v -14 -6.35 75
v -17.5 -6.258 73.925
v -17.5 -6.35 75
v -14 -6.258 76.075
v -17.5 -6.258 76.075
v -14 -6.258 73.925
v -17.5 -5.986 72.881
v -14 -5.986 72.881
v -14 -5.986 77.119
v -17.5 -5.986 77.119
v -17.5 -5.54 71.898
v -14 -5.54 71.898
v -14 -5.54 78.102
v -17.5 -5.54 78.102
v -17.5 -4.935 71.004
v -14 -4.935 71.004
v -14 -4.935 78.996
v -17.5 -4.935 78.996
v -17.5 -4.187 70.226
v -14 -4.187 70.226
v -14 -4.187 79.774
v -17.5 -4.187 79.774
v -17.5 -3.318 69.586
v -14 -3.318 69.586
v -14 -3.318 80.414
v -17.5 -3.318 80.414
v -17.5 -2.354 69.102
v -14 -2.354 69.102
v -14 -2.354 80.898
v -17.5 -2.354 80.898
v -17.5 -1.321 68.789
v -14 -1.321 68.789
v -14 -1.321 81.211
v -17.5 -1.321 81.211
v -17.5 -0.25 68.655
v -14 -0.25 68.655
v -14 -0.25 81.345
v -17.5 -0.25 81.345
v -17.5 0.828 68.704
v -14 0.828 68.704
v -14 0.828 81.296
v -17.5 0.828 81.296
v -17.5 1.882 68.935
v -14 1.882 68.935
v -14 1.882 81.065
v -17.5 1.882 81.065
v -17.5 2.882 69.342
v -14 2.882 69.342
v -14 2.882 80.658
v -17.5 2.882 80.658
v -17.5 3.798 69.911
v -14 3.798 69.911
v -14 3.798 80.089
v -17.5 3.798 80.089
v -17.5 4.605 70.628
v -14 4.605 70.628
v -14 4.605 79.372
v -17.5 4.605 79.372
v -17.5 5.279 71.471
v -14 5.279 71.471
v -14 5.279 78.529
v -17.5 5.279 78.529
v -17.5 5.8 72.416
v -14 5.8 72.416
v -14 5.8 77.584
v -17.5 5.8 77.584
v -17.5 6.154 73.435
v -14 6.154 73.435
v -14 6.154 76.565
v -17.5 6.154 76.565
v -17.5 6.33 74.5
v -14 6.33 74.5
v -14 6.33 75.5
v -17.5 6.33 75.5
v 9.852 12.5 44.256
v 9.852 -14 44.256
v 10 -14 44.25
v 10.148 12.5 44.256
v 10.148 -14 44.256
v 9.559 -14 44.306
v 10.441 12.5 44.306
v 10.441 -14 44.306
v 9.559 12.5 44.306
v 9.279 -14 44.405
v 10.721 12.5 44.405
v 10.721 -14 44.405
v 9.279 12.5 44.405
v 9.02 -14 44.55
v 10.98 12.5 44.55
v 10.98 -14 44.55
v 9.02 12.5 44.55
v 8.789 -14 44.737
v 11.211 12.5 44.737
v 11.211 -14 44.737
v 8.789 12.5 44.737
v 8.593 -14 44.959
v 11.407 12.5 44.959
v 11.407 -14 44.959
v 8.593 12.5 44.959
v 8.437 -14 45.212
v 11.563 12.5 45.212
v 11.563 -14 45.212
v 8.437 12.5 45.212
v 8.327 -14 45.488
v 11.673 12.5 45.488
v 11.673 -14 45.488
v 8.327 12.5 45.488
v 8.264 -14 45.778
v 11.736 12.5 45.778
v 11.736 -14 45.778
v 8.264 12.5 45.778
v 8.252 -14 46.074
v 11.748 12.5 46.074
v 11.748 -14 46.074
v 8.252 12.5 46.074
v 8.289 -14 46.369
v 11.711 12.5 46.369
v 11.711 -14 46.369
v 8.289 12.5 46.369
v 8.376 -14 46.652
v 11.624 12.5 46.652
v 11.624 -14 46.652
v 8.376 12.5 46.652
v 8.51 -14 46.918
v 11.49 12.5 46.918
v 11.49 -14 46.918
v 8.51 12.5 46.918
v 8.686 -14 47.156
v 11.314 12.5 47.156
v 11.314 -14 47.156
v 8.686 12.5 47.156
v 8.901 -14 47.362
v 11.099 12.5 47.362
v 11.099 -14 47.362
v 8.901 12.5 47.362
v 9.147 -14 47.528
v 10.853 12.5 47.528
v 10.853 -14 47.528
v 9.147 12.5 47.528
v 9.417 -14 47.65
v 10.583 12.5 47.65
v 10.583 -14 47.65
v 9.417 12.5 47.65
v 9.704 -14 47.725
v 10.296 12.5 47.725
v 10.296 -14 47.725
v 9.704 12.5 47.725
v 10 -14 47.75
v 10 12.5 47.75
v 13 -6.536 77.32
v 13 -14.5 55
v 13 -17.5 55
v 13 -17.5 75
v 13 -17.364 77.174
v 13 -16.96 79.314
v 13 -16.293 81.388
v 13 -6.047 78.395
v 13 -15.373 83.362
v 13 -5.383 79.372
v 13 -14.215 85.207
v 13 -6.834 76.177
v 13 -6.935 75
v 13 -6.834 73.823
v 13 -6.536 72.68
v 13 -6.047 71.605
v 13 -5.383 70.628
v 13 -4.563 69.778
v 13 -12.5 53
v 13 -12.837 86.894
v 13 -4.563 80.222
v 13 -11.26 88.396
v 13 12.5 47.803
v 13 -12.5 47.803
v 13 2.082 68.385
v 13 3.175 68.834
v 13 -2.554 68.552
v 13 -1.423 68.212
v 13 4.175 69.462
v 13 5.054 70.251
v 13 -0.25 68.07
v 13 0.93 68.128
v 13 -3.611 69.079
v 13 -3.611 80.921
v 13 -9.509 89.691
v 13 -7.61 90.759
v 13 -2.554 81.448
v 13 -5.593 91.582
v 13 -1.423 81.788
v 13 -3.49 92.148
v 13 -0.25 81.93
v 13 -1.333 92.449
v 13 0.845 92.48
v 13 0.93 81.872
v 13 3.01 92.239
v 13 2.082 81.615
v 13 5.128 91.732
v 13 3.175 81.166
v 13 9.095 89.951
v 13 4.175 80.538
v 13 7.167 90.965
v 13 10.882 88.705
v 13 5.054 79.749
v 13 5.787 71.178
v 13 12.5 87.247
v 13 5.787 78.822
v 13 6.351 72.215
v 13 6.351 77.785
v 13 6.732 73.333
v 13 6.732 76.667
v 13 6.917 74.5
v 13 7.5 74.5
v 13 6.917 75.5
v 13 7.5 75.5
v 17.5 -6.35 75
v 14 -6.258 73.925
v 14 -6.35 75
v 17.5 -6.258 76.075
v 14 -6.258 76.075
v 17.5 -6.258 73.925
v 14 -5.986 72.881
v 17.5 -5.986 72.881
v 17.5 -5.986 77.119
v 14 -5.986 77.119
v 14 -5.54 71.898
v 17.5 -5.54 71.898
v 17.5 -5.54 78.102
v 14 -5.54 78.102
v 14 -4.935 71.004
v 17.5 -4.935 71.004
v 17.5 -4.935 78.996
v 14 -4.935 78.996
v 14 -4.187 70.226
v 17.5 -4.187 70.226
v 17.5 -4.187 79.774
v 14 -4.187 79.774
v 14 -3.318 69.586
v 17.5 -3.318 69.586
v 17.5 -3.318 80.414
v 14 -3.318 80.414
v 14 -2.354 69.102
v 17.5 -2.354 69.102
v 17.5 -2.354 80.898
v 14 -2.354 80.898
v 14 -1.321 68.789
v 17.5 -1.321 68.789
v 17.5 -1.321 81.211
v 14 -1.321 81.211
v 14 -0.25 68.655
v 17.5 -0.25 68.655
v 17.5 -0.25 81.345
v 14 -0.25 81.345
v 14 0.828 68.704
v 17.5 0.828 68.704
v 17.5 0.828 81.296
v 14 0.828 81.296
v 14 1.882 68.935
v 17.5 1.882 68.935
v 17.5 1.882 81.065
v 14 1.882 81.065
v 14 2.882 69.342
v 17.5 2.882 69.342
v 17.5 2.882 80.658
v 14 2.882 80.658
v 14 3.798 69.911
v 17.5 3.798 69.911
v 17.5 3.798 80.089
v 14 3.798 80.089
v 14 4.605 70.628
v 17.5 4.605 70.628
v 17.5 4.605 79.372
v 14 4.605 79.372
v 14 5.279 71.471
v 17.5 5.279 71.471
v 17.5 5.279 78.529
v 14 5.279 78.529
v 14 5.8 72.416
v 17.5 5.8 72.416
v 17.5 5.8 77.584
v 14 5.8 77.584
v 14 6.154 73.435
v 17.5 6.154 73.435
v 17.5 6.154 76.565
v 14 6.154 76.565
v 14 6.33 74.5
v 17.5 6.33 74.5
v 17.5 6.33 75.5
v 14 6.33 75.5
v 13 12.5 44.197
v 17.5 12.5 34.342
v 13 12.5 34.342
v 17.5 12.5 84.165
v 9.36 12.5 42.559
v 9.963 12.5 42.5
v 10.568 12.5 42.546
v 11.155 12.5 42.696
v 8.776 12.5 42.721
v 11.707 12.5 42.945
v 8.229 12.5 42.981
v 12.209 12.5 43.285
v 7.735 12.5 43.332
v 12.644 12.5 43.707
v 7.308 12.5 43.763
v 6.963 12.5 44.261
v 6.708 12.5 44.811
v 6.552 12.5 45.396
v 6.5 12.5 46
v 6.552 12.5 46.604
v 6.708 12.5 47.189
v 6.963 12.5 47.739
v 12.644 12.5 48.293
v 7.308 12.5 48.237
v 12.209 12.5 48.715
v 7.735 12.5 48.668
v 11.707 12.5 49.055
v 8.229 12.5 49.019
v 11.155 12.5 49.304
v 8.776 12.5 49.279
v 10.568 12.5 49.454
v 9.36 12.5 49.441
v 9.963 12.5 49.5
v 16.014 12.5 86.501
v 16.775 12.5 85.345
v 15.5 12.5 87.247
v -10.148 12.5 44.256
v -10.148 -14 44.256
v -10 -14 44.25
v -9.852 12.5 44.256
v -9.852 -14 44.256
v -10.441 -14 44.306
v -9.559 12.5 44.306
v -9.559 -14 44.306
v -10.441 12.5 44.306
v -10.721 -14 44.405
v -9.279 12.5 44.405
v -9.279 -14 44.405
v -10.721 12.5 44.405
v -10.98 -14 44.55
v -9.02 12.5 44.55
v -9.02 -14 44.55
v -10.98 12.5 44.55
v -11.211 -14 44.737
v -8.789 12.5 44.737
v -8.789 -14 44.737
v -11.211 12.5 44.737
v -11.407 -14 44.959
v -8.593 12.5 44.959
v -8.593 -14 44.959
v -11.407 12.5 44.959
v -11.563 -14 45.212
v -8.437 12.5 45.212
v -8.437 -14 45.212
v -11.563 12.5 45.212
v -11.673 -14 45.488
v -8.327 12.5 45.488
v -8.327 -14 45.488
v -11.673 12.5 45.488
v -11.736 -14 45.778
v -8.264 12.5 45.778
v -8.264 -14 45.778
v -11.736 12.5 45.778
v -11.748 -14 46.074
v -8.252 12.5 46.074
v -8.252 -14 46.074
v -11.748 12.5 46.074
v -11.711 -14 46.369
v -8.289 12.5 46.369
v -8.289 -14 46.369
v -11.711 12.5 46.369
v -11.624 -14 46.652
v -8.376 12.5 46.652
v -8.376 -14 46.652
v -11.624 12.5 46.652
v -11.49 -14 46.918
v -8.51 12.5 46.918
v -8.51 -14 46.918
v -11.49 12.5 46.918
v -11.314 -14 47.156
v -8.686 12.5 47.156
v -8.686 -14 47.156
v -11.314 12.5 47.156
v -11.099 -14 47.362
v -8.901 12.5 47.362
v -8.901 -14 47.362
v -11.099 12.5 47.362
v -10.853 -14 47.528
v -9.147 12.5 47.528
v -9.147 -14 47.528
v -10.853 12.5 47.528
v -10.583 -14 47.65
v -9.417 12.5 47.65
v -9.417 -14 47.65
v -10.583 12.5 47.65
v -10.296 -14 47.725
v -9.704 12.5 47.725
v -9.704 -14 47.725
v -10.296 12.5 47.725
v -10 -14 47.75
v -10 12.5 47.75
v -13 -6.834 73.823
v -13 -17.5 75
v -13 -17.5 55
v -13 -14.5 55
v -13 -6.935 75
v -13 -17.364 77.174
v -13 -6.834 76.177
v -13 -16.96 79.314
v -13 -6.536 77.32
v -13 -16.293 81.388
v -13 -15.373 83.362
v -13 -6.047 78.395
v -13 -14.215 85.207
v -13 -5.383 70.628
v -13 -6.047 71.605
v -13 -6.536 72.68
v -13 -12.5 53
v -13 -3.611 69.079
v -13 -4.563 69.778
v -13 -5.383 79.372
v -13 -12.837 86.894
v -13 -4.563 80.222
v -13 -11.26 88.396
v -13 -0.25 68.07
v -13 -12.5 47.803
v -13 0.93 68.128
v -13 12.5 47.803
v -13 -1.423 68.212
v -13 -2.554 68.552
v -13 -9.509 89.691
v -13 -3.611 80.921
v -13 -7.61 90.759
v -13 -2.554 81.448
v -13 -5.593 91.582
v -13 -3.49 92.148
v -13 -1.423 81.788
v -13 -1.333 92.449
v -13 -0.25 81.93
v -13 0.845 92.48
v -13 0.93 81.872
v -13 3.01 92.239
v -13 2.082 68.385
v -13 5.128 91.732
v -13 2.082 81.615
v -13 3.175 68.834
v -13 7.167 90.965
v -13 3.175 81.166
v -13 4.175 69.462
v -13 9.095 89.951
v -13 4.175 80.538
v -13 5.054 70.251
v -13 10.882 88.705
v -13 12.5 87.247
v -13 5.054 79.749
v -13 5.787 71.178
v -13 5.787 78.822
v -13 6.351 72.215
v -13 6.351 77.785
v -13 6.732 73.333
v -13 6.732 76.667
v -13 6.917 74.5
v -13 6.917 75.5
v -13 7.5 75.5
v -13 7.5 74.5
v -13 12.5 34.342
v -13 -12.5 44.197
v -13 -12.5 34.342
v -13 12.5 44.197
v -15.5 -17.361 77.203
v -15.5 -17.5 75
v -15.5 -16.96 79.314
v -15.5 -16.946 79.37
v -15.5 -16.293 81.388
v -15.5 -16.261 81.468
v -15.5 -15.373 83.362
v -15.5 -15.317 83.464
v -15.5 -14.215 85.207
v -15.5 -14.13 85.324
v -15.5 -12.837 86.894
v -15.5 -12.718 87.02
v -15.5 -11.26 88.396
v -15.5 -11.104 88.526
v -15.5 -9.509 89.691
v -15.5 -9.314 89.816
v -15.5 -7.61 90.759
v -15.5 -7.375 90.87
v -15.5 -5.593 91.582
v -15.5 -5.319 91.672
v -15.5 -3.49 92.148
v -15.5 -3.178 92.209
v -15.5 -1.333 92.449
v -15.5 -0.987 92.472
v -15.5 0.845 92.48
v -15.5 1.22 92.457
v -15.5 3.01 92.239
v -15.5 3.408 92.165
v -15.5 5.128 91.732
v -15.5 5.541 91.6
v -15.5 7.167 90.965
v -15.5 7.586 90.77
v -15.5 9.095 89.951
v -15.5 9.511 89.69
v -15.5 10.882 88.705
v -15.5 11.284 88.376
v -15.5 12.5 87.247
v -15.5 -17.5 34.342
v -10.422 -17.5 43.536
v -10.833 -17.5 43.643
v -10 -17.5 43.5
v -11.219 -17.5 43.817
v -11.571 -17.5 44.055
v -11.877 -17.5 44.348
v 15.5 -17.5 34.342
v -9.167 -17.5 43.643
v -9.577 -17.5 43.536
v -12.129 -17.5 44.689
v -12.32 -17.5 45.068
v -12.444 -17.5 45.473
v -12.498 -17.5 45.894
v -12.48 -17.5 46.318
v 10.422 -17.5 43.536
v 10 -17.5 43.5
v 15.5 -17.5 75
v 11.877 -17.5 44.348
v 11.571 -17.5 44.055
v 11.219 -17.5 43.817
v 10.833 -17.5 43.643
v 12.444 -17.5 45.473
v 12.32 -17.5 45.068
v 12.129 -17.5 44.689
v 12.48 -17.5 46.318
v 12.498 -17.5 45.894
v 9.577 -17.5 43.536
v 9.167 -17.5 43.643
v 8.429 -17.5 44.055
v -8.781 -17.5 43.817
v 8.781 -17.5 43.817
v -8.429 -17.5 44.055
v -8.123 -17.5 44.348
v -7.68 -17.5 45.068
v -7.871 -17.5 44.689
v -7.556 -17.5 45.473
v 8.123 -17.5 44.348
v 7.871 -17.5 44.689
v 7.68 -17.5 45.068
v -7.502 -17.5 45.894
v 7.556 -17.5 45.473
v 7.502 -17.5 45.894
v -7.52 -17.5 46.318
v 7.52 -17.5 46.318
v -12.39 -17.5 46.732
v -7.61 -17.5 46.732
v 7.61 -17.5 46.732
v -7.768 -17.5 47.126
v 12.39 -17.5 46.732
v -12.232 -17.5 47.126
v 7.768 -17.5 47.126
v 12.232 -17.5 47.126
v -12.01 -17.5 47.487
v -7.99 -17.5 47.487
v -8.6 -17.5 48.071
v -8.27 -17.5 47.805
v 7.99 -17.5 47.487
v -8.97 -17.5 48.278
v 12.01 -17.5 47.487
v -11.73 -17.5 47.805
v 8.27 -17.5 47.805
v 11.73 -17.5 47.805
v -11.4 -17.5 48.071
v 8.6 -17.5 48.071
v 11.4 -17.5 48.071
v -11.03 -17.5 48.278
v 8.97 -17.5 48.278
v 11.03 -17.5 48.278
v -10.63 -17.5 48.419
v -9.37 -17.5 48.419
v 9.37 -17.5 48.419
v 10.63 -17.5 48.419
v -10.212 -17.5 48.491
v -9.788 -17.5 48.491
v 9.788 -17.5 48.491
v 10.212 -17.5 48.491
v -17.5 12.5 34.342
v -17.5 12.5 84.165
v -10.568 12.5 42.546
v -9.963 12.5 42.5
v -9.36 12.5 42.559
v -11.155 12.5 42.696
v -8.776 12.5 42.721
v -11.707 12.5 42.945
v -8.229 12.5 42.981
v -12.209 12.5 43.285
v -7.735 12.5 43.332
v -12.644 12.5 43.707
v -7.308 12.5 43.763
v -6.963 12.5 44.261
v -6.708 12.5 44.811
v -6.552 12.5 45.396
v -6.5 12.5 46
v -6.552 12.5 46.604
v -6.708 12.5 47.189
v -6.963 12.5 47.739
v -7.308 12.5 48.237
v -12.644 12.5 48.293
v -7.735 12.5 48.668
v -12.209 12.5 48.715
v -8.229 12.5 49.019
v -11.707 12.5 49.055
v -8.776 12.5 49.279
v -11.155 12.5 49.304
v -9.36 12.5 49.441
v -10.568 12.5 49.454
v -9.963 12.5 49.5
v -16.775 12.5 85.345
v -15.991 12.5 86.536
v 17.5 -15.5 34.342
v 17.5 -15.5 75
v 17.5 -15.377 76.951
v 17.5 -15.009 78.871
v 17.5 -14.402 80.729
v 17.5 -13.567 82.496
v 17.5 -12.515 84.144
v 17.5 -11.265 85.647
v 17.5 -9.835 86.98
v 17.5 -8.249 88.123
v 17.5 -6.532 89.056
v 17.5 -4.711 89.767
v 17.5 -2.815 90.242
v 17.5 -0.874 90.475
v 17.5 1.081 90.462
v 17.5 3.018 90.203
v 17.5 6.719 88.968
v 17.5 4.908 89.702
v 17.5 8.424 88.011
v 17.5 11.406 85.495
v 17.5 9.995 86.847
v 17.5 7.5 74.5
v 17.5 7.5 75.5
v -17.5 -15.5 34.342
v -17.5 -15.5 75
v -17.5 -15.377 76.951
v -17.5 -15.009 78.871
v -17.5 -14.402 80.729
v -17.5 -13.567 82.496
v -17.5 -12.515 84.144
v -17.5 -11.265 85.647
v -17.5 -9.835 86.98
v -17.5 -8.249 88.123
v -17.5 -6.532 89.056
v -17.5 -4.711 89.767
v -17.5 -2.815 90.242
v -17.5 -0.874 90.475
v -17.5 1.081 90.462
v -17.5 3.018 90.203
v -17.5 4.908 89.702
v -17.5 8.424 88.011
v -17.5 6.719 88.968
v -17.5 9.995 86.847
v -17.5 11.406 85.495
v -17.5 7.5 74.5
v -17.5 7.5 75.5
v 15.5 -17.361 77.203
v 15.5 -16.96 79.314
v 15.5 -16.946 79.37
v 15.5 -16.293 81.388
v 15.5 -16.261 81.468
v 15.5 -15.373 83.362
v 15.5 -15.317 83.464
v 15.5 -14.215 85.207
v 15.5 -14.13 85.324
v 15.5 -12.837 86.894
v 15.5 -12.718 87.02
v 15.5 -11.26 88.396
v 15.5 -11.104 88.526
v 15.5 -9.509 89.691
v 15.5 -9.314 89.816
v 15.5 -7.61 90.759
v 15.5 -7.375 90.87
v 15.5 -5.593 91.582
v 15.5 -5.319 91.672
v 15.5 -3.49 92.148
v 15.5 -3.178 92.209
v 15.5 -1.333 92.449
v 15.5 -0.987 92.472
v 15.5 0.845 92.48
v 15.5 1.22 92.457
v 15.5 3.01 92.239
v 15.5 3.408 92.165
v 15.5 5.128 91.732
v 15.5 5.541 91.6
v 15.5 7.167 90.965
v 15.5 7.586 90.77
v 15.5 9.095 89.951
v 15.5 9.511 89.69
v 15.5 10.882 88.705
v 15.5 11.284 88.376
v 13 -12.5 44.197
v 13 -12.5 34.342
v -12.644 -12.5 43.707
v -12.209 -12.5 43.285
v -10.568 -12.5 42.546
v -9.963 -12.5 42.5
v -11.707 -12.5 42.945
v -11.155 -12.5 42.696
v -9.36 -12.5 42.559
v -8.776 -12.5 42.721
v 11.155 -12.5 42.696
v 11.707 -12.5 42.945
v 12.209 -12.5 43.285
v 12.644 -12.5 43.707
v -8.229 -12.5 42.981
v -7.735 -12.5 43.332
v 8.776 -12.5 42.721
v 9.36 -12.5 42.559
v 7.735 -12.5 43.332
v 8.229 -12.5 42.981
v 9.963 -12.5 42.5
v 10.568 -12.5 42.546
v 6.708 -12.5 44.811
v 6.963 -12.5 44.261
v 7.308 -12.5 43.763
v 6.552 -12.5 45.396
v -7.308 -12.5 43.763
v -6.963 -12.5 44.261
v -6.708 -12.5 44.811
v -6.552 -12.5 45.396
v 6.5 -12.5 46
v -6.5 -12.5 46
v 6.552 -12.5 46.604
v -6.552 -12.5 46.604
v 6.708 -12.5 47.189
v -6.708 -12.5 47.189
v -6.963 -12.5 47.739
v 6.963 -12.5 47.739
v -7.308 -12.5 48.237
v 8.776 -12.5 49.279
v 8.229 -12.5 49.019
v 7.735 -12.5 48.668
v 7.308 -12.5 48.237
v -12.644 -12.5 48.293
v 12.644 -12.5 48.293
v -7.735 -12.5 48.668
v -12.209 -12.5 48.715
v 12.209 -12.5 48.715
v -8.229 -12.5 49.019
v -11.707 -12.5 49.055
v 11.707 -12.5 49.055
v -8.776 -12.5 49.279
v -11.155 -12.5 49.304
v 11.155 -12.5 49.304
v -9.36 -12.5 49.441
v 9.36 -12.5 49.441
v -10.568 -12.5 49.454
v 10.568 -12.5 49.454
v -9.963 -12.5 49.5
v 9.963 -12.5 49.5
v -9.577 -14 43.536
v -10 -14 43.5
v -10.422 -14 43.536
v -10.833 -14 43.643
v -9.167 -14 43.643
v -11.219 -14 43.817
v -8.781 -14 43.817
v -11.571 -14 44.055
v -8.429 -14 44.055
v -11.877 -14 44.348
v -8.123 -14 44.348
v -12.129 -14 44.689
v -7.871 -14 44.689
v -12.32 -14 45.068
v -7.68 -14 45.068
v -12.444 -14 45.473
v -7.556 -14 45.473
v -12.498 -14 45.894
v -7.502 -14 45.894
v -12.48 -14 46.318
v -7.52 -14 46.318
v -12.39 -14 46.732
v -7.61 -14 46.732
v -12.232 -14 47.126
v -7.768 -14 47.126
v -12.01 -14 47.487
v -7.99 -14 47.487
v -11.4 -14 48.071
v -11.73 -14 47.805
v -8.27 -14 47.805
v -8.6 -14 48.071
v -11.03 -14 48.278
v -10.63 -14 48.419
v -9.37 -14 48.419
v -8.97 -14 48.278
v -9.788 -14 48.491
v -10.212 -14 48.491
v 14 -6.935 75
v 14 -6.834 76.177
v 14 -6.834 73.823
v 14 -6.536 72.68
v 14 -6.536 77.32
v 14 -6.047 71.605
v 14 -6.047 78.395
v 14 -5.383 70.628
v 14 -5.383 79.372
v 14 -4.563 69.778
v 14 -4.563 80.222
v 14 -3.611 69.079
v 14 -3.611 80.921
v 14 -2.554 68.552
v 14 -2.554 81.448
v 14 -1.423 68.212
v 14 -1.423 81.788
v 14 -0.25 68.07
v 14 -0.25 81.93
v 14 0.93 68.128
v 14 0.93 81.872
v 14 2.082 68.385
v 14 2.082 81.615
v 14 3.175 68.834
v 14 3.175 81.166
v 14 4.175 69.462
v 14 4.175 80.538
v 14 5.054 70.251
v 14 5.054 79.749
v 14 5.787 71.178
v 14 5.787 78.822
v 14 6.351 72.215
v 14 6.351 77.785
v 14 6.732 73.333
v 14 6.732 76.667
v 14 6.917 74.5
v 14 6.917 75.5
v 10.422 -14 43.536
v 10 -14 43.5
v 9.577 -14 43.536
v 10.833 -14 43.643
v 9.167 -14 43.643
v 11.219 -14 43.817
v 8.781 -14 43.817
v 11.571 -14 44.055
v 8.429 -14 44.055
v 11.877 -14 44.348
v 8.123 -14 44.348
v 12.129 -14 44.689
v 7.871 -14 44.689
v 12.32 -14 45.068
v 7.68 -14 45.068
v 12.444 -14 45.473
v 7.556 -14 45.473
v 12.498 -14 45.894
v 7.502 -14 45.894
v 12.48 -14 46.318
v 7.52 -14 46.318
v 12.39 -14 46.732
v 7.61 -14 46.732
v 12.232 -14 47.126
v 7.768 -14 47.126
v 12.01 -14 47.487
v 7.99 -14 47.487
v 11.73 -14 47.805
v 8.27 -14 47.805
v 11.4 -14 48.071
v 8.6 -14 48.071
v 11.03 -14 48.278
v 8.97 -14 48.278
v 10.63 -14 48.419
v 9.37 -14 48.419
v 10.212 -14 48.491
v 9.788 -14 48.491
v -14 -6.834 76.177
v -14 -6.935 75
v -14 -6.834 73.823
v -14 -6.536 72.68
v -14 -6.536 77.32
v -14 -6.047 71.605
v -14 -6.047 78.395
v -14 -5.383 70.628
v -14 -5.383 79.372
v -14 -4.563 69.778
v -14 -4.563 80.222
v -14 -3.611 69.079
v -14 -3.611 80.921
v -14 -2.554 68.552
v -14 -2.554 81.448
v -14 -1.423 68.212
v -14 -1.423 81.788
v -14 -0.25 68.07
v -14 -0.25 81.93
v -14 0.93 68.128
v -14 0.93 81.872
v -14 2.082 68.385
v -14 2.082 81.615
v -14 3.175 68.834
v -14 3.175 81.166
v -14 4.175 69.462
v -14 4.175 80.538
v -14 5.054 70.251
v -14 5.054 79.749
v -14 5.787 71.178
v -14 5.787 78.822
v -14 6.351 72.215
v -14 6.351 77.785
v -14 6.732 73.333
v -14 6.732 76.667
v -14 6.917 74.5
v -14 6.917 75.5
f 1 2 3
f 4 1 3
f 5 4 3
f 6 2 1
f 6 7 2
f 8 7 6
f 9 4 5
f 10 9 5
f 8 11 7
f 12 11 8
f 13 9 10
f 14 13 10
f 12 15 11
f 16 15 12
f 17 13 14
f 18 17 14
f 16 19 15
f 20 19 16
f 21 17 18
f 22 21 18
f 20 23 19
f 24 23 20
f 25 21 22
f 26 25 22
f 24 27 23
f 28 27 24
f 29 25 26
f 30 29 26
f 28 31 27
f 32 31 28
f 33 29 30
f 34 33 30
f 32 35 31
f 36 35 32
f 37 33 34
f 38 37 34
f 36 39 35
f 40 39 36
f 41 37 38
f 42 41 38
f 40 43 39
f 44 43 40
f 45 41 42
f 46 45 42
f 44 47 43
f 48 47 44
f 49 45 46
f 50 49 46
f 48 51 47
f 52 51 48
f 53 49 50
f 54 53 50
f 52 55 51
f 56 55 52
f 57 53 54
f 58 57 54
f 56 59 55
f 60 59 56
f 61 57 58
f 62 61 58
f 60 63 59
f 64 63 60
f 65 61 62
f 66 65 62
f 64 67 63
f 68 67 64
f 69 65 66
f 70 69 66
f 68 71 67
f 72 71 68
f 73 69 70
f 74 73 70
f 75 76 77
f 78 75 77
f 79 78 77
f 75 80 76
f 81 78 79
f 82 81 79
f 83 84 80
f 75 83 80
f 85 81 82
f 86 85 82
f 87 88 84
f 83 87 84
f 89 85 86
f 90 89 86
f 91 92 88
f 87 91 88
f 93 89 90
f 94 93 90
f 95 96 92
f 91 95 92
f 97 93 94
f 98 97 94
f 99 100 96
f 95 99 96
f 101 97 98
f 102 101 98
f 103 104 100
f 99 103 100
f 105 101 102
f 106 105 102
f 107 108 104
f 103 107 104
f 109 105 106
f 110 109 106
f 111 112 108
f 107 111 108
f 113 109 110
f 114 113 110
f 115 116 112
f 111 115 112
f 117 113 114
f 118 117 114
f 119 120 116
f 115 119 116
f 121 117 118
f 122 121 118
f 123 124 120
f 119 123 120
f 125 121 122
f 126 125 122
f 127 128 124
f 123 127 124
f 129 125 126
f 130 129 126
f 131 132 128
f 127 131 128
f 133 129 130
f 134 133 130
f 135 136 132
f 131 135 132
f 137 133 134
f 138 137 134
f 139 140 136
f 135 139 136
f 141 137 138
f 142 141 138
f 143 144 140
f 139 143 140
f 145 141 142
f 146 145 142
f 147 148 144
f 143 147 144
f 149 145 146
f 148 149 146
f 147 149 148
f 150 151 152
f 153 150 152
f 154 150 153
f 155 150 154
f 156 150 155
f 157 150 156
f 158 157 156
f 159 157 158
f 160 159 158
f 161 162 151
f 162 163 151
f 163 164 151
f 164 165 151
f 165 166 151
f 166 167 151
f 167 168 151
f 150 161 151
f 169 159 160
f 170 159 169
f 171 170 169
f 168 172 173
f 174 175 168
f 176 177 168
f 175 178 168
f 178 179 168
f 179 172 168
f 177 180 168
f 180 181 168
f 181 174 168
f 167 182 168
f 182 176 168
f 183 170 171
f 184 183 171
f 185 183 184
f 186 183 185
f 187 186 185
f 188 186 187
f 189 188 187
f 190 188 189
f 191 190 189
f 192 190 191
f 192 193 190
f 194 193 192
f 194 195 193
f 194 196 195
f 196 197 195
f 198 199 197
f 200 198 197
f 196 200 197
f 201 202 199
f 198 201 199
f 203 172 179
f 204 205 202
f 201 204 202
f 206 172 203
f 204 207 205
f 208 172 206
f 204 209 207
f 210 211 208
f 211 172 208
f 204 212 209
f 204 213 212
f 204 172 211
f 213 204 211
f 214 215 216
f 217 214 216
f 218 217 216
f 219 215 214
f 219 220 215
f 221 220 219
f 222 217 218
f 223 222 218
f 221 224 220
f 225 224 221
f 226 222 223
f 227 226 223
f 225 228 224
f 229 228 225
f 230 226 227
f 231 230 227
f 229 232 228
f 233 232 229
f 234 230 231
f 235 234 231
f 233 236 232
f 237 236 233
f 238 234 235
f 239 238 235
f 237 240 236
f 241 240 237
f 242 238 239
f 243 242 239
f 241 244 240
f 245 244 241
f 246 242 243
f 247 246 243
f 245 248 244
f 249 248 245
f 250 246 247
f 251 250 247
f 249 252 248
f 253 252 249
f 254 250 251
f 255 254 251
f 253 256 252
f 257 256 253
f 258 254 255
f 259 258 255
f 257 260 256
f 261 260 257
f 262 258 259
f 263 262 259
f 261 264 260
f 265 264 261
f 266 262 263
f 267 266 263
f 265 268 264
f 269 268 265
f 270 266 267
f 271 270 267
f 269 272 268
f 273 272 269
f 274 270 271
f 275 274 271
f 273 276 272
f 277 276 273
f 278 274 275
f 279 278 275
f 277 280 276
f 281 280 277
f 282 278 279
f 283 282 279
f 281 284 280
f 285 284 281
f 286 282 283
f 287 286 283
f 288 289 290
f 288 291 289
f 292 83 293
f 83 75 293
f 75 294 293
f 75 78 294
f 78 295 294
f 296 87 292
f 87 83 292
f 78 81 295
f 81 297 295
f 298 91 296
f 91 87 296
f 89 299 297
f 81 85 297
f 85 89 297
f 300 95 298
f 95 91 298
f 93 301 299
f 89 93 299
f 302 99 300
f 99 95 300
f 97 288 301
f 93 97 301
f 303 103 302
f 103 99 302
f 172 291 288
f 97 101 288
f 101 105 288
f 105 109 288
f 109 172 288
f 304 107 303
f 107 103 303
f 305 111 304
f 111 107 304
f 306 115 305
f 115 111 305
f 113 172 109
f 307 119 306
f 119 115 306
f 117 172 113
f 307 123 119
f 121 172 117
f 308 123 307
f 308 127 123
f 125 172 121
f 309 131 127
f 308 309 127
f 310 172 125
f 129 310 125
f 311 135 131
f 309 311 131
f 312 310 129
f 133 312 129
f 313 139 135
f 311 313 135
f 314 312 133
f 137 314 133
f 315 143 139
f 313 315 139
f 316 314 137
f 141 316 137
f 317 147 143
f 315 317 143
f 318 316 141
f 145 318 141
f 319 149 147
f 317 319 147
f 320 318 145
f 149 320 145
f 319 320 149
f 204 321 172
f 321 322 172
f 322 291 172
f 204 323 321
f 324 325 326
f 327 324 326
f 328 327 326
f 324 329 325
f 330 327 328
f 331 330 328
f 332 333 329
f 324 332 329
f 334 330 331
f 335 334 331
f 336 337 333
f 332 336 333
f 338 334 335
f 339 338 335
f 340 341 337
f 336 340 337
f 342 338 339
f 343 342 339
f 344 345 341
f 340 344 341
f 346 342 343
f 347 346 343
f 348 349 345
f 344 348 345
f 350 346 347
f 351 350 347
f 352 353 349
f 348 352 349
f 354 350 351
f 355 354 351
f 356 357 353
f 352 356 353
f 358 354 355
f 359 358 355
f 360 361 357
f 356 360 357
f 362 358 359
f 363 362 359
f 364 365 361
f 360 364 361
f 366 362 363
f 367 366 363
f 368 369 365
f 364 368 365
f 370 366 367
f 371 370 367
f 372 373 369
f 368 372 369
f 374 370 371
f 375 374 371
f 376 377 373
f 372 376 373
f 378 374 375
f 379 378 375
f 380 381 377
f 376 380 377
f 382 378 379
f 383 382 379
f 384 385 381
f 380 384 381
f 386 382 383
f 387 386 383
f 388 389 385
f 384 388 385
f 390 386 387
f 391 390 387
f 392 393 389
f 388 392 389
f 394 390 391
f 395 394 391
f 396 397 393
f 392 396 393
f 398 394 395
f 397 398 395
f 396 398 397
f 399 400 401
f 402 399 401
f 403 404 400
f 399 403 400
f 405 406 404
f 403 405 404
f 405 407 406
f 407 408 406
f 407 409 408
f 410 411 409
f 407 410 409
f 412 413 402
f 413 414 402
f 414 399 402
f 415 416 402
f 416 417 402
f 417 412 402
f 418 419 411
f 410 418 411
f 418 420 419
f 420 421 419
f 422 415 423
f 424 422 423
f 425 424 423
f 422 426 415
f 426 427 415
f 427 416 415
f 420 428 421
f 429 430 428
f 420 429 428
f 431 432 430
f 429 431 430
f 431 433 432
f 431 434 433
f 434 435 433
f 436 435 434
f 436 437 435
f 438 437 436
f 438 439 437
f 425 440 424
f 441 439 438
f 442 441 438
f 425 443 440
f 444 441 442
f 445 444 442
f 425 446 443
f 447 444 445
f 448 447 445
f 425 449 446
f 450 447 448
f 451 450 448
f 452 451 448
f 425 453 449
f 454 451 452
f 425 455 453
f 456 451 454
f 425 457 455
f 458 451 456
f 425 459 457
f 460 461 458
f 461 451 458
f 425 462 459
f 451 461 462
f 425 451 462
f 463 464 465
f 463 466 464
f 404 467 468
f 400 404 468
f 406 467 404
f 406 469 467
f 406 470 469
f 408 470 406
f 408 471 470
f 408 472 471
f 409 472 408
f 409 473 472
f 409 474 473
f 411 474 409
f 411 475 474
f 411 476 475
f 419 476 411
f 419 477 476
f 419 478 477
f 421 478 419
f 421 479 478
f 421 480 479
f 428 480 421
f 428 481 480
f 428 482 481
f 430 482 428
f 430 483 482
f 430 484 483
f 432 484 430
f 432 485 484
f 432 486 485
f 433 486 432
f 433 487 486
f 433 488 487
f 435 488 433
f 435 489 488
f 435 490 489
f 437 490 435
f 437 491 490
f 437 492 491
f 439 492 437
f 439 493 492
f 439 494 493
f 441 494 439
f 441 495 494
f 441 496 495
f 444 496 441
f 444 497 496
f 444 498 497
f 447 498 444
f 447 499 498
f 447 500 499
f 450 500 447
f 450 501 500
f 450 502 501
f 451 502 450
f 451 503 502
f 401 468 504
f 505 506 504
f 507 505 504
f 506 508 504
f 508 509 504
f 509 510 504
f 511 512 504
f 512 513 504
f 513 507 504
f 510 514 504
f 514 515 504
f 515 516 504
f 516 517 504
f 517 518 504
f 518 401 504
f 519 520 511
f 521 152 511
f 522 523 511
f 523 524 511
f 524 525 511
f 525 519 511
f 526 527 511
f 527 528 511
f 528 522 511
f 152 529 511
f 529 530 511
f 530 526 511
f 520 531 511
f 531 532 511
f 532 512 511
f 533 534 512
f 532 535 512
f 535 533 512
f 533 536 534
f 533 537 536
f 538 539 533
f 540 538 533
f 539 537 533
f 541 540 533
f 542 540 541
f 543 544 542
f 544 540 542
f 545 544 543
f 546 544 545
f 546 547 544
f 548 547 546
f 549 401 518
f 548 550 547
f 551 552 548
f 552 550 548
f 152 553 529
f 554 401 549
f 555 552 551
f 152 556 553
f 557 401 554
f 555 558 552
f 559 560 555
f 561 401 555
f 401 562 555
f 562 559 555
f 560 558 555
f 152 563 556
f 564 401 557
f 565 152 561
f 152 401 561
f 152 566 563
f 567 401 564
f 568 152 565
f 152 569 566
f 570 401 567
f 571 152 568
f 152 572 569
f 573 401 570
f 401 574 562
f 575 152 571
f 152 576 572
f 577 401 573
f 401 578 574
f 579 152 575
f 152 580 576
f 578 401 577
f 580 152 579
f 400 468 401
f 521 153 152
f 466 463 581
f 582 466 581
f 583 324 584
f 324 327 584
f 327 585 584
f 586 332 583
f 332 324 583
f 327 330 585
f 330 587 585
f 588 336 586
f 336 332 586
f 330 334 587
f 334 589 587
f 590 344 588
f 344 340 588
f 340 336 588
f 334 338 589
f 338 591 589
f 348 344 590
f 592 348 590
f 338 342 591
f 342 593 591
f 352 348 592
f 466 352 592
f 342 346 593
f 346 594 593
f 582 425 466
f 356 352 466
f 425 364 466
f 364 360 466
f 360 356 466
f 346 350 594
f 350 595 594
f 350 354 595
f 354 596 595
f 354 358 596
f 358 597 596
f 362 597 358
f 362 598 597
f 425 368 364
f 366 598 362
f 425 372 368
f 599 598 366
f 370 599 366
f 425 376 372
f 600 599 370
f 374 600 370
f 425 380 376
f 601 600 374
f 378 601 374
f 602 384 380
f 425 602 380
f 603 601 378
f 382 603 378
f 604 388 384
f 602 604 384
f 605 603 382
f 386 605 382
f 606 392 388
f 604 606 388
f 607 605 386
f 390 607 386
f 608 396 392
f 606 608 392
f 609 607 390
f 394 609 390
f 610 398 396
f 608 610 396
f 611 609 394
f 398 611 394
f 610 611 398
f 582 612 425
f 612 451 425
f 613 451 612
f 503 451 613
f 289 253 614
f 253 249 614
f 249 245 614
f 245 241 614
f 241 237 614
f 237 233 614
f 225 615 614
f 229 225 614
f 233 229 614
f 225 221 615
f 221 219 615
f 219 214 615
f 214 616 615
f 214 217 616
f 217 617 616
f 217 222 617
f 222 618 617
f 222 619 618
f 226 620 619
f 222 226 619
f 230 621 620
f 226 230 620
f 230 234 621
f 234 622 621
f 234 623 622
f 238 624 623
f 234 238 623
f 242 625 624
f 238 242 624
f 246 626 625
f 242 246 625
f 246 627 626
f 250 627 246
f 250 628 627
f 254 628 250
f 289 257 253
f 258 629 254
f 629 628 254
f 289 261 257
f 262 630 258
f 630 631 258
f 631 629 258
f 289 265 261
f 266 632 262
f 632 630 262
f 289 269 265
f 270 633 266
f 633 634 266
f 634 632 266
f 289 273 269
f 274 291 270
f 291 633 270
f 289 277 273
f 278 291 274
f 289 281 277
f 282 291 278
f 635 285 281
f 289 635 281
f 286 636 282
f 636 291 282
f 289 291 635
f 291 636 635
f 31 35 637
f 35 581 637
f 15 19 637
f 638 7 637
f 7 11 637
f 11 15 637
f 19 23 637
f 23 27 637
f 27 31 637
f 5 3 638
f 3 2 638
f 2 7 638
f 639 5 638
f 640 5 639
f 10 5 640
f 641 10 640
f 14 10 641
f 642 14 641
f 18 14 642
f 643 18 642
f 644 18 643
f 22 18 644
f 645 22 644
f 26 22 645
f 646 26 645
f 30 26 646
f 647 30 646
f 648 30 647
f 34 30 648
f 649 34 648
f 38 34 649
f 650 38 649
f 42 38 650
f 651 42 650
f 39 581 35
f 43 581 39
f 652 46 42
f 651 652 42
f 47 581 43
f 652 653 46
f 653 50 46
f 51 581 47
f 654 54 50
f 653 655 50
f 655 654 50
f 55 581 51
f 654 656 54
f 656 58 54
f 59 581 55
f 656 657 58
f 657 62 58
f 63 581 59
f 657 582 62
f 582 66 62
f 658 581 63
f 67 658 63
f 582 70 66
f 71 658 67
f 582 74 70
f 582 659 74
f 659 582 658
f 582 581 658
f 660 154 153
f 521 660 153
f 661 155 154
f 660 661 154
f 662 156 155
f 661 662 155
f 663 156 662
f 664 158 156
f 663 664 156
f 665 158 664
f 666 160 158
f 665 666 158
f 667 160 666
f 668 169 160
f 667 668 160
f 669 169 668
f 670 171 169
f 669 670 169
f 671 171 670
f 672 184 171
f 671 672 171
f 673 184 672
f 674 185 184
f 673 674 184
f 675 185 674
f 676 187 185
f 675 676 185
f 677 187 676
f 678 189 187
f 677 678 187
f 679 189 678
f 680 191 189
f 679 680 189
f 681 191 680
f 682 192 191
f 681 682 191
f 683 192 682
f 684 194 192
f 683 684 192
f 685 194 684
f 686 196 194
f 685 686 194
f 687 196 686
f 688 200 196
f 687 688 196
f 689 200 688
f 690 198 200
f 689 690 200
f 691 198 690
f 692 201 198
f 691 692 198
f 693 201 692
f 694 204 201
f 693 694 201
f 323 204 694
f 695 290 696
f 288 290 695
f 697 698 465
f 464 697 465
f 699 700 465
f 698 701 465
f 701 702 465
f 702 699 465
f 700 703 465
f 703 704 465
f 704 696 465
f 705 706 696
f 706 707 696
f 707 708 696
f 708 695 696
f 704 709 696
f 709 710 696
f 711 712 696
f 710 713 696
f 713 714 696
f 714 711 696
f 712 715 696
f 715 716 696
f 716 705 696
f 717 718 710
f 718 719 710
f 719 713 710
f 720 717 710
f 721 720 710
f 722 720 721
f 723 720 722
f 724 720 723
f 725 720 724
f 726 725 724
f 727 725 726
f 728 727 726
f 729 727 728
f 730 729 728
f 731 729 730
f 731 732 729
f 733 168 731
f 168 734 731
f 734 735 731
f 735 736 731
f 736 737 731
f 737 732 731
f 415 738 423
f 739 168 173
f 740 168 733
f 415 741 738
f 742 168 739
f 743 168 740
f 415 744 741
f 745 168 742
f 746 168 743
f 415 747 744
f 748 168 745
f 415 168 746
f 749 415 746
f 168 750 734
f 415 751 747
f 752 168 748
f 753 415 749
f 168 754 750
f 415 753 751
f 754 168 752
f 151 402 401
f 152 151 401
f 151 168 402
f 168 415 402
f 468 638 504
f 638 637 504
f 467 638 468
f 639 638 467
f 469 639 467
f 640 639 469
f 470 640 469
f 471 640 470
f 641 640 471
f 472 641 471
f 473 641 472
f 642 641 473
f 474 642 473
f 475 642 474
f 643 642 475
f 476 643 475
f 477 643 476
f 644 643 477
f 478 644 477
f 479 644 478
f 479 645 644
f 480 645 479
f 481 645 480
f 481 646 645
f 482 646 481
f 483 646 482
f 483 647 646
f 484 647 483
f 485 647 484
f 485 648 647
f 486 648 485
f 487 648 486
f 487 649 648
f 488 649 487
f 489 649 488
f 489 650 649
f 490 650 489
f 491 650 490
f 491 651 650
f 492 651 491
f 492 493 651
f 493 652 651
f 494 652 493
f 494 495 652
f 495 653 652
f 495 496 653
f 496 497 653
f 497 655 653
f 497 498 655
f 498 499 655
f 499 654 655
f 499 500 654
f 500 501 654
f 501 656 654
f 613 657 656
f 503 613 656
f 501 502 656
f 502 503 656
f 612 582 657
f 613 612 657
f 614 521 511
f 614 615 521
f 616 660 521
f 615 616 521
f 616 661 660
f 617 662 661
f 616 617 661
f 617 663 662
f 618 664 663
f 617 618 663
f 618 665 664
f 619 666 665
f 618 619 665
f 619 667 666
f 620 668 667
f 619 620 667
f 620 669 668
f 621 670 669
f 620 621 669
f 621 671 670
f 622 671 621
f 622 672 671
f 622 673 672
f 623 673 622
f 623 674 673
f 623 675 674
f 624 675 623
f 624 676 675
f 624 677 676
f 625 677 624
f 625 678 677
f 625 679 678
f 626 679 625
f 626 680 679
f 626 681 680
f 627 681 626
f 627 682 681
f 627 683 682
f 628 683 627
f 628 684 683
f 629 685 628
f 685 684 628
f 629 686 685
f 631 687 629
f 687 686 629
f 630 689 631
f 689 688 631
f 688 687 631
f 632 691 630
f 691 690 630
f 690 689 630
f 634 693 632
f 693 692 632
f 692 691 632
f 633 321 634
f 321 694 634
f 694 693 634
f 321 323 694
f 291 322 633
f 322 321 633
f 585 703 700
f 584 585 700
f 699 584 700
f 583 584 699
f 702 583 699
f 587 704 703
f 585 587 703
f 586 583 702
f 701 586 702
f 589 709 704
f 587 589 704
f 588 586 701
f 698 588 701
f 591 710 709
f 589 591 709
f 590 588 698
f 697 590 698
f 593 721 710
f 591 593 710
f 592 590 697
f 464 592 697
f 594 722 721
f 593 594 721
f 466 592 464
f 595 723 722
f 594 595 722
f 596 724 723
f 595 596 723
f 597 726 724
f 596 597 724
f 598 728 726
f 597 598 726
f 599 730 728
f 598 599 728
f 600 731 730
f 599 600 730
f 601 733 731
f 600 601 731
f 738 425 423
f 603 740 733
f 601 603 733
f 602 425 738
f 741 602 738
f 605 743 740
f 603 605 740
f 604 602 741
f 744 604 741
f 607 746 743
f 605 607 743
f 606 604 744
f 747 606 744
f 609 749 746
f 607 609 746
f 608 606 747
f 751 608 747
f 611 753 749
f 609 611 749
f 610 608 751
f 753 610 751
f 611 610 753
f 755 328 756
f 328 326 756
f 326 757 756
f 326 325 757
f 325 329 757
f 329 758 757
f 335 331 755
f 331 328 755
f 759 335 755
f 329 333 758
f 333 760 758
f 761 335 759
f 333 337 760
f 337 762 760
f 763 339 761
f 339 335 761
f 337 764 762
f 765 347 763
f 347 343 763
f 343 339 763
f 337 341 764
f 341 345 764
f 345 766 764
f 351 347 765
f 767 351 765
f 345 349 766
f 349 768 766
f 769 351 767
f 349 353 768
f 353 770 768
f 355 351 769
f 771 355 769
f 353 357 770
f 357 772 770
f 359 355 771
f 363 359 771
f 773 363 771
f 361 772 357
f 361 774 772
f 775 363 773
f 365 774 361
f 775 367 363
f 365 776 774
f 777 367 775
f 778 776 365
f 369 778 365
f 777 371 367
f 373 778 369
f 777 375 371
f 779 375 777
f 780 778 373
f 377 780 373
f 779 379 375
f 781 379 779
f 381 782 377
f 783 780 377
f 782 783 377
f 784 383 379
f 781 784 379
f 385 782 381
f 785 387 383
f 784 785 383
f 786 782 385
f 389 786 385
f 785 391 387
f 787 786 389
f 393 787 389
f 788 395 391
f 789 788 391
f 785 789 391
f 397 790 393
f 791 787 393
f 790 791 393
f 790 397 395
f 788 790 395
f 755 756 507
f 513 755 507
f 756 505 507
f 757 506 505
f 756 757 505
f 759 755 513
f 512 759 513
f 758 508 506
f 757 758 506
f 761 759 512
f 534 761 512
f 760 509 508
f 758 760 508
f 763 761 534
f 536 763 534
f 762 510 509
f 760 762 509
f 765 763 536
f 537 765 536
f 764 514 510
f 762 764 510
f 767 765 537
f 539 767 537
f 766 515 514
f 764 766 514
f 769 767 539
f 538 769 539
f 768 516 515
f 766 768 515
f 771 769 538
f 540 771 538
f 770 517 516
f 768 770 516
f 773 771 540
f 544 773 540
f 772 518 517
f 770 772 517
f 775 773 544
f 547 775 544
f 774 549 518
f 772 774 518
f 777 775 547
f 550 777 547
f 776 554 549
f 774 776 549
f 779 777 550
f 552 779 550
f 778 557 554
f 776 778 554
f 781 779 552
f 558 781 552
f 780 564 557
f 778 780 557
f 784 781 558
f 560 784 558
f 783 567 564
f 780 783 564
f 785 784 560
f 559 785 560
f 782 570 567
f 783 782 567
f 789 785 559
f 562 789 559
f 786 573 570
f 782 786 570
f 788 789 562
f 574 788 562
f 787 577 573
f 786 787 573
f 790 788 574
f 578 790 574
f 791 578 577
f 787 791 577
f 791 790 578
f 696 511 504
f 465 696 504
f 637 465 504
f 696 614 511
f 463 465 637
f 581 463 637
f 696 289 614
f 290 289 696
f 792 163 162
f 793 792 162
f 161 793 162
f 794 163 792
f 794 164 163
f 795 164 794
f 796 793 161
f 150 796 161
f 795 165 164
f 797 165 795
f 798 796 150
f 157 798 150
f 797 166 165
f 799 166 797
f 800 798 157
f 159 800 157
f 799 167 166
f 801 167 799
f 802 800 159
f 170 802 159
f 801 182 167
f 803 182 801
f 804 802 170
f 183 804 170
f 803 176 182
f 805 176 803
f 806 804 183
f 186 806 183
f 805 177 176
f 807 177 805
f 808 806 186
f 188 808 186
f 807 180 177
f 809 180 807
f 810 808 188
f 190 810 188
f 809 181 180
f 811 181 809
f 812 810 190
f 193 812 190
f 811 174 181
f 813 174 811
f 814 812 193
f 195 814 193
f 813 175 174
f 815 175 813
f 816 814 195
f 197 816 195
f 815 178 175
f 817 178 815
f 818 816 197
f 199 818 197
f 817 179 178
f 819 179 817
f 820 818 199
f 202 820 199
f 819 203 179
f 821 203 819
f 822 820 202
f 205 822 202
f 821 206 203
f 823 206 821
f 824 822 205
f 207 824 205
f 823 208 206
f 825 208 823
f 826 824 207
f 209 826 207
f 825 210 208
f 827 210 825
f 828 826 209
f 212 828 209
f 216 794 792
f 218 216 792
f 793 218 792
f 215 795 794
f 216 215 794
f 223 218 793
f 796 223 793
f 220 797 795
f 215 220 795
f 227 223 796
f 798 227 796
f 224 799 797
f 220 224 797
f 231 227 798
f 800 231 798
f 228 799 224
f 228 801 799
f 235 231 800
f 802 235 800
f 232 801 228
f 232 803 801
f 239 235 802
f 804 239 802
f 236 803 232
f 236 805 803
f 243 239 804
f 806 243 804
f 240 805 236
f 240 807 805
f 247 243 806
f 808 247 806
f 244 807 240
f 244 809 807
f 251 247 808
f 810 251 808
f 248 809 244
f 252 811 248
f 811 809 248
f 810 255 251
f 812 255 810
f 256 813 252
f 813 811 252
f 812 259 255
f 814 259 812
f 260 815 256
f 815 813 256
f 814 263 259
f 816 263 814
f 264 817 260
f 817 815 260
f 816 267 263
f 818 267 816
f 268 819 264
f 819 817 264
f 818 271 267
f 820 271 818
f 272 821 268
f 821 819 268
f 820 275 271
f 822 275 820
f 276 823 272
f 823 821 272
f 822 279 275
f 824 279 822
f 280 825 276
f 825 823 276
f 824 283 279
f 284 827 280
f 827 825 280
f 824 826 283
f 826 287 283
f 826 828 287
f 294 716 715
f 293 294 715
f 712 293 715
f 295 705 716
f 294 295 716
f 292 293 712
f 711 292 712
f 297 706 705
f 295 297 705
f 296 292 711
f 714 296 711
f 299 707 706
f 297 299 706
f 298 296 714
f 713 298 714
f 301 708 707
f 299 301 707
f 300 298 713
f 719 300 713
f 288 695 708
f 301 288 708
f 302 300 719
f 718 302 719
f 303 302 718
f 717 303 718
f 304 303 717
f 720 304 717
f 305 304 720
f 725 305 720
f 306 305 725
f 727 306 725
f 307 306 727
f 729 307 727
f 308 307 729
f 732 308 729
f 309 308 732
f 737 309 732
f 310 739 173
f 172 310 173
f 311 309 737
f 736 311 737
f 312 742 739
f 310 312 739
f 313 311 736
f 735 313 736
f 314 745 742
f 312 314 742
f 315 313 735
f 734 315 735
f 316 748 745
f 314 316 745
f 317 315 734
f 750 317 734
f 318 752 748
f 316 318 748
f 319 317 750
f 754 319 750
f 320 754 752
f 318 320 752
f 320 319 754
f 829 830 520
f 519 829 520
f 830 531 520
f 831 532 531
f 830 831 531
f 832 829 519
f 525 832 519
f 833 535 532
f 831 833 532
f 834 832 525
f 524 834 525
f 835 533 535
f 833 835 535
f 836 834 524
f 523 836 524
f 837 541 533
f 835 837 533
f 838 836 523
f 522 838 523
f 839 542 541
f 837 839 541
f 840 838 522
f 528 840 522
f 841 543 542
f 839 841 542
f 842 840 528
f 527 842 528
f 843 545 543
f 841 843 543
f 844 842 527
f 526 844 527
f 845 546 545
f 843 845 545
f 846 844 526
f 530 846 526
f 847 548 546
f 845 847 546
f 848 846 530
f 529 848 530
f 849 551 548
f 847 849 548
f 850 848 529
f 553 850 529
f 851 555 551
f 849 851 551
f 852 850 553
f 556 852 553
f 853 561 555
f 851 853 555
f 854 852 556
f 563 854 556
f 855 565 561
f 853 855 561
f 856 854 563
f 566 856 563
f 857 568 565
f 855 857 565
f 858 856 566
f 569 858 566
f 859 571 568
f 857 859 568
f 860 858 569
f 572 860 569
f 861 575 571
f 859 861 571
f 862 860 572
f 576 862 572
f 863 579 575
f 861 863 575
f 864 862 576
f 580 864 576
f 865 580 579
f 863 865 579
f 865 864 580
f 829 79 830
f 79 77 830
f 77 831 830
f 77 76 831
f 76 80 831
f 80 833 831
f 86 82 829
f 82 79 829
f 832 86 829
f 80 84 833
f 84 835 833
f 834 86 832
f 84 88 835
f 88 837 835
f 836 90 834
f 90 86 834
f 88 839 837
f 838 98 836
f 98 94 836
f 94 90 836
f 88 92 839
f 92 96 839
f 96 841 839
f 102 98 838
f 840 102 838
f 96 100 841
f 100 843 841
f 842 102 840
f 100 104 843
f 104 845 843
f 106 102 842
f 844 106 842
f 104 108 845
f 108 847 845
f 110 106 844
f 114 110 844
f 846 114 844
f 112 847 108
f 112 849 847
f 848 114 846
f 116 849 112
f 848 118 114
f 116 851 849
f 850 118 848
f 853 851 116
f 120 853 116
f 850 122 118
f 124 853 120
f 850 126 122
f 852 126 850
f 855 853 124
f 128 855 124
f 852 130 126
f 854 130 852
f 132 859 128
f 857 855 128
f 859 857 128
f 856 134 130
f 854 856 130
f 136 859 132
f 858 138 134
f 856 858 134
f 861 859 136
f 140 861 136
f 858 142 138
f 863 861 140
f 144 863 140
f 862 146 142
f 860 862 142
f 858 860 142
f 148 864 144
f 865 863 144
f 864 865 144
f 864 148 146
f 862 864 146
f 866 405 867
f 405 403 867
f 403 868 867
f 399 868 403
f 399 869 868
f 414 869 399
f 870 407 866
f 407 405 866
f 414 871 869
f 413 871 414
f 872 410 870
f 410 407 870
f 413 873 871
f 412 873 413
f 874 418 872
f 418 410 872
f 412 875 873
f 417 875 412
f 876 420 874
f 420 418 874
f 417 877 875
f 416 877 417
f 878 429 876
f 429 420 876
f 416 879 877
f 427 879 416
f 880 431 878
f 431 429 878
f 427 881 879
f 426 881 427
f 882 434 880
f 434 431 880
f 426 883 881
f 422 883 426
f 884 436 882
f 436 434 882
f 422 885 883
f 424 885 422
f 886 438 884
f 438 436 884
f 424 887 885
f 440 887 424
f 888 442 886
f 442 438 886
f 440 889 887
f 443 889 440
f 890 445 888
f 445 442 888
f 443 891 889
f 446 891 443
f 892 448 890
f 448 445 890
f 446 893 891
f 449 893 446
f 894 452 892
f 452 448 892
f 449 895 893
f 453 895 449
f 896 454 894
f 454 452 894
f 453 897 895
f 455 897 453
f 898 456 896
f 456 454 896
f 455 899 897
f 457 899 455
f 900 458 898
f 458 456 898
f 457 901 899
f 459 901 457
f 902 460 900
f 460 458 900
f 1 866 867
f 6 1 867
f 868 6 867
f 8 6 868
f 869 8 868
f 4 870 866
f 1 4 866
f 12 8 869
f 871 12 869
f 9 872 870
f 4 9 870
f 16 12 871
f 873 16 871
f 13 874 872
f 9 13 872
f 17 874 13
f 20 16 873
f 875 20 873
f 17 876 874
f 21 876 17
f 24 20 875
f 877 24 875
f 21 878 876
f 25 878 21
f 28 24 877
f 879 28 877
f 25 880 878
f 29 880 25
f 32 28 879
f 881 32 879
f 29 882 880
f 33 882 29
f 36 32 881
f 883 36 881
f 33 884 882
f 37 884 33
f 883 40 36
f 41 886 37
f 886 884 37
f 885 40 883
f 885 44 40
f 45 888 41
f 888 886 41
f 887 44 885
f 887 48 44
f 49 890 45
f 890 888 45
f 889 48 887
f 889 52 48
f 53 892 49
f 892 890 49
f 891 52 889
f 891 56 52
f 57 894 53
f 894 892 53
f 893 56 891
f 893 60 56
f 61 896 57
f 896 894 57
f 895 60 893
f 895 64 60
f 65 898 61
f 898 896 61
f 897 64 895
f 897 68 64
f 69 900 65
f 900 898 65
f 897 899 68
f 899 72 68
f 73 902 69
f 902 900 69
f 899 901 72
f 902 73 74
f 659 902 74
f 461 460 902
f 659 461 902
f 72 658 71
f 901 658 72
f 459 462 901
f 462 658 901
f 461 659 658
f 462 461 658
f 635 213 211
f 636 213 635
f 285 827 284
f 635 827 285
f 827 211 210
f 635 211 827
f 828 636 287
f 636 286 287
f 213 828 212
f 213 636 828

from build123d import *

# Parameters (mm, degrees)
SKETCH1_R               = 6.35
BOSS_EXTRUDE1_DEPTH     = 17.5
CUT_EXTRUDE1_DEPTH      = 13
CHAMFER1_SIZE           = 2
SKETCH4_R               = 3.5
BOSS_EXTRUDE2_DEPTH     = 25
SKETCH6_R               = 1.75
CUT_EXTRUDE2_DEPTH      = 30
SKETCH7_R               = 2.5
CUT_EXTRUDE3_DEPTH      = 3.5
CUT_EXTRUDE4_DEPTH      = 101.436547133
CUT_EXTRUDE4_DEPTH_BACK = 101.436547133
SKETCH8_W               = 138.060190548
SKETCH8_H               = 48.357154547
SKETCH9_R               = 6.935
CUT_EXTRUDE5_DEPTH      = 1
MIRROR1_START           = -12.5
MIRROR1_OUTLINE_R       = 1.75
MIRROR1_DEPTH           = 25
MIRROR1_START_2         = -17.5
MIRROR1_2_OUTLINE_R     = 2.5
MIRROR1_2_DEPTH         = 3.5
MIRROR1_START_3         = -14
MIRROR1_3_OUTLINE_R     = 1.75
MIRROR1_3_DEPTH         = 1.5
MIRROR1_4_OUTLINE_R     = 6.935
MIRROR1_4_OUTLINE_R_2   = 6.35
MIRROR1_4_DEPTH         = 1
CUT_EXTRUDE6_DEPTH      = 101.436547133
CUT_EXTRUDE6_DEPTH_BACK = 101.436547133
SKETCH10_W              = 1
SKETCH10_H              = 7.5


# Read off the part's stored shape, not the designer's step: Mirror1
with BuildPart() as part:
    # Sketch1 → Boss-Extrude1 (new, symmetric)
    with BuildSketch(Plane(origin=(0, 0, 0), x_dir=(0, 0, -1), z_dir=(1, 0, 0))):
        with BuildLine():
            Line((-75, -17.5), (75, -17.5))
            ThreePointArc((75, -17.5), (91.201851746, -6.614378278), (87.247448714, 12.5))
            Line((87.247448714, 12.5), (-87.247448714, 12.5))
            ThreePointArc((-87.247448714, 12.5), (-91.201851746, -6.614378278), (-75, -17.5))
        make_face()
        with Locations((-75, 0)):
            Circle(SKETCH1_R, mode=Mode.SUBTRACT)
        with Locations((75, 0)):
            Circle(SKETCH1_R, mode=Mode.SUBTRACT)
    extrude(amount=BOSS_EXTRUDE1_DEPTH, both=True)

    # Sketch3 → Cut-Extrude1 (cut, symmetric)
    with BuildSketch(Plane(origin=(0, 0, 0), x_dir=(0, 0, -1), z_dir=(1, 0, 0))):
        with BuildLine():
            Line((-92.5, 12.5), (75, 12.5))
            ThreePointArc((75, 12.5), (87.5, 0), (75, -12.5))
            Line((75, -12.5), (-55, -12.5))
            Line((-55, -12.5), (-55, -17.5))
            Line((-55, -17.5), (-92.5, -17.5))
            Line((-92.5, -17.5), (-92.5, 12.5))
        make_face()
    extrude(amount=CUT_EXTRUDE1_DEPTH, both=True, mode=Mode.SUBTRACT)

    # Chamfer1
    chamfer1_edges = [part.edges().sort_by_distance(p)[0] for p in [
        (17.5, -6.614378278, -91.201851746),
        (0, -12.5, 55),
        (17.5, -6.614378278, 91.201851746),
        (-17.5, -6.614378278, -91.201851746),
        (-17.5, -17.5, 0),
        (-17.5, -6.614378278, 91.201851746),
        (17.5, -17.5, 0),
    ]]
    chamfer(chamfer1_edges, length=CHAMFER1_SIZE)

    # Sketch4 → Boss-Extrude2 (add)
    with BuildSketch(Plane(origin=(0, -12.5, 0), x_dir=(1, 0, 0), z_dir=(0, 1, 0))):
        with Locations((-10, 62.5)):
            Circle(SKETCH4_R)
        with Locations((-10, 26.333333333)):
            Circle(SKETCH4_R)
        with Locations((-10, -9.833333333)):
            Circle(SKETCH4_R)
        with Locations((-10, -46)):
            Circle(SKETCH4_R)
    extrude(amount=BOSS_EXTRUDE2_DEPTH)

    # Sketch6 → Cut-Extrude2 (cut)
    with BuildSketch(Plane(origin=(0, 12.5, 0), x_dir=(1, 0, 0), z_dir=(0, 1, 0))):
        with Locations(Location((-10, 62.5, 0), (0, 0, 270))):
            Circle(SKETCH6_R)
        with Locations(Location((-10, 26.333333333, 0), (0, 0, 270))):
            Circle(SKETCH6_R)
        with Locations(Location((-10, -9.833333333, 0), (0, 0, 270))):
            Circle(SKETCH6_R)
        with Locations(Location((-10, -46, 0), (0, 0, 270))):
            Circle(SKETCH6_R)
    extrude(amount=-CUT_EXTRUDE2_DEPTH, mode=Mode.SUBTRACT)

    # Sketch7 → Cut-Extrude3 (cut)
    with BuildSketch(Plane.XZ.offset(17.5)):
        with Locations(Location((-10, 46, 0), (0, 0, 270))):
            Circle(SKETCH7_R)
        with Locations(Location((-10, 9.833333333, 0), (0, 0, 270))):
            Circle(SKETCH7_R)
        with Locations(Location((-10, -26.333333333, 0), (0, 0, 270))):
            Circle(SKETCH7_R)
        with Locations(Location((-10, -62.5, 0), (0, 0, 270))):
            Circle(SKETCH7_R)
    extrude(amount=-CUT_EXTRUDE3_DEPTH, mode=Mode.SUBTRACT)

    # Sketch8 → Cut-Extrude4 (cut, two sides: drawn at the far end of the back side and taken through both)
    with BuildSketch(Plane(origin=(17.5, 0, 0), x_dir=(0, 0, -1), z_dir=(1, 0, 0)).offset(-CUT_EXTRUDE4_DEPTH_BACK)):
        with Locations((34.687663788, -4.667734514)):
            Rectangle(SKETCH8_W, SKETCH8_H)
    extrude(amount=CUT_EXTRUDE4_DEPTH + CUT_EXTRUDE4_DEPTH_BACK, mode=Mode.SUBTRACT)

    # Sketch9 → Cut-Extrude5 (cut)
    with BuildSketch(Plane.ZY.offset(-13)):
        with Locations((75, 0)):
            Circle(SKETCH9_R)
    extrude(amount=-CUT_EXTRUDE5_DEPTH, mode=Mode.SUBTRACT)

    # Mirror1 outline → Mirror1 (add)
    with BuildSketch(Plane(origin=(0, 0, 0), x_dir=(1, 0, 0), z_dir=(0, 1, 0)).offset(MIRROR1_START)):
        with BuildLine():
            ThreePointArc((13, -44.197224362), (6.5, -46), (13, -47.802775638))
            Line((13, -47.802775638), (13, -44.197224362))
        make_face()
        with Locations((10, -46)):
            Circle(MIRROR1_OUTLINE_R, mode=Mode.SUBTRACT)
    extrude(amount=MIRROR1_DEPTH)

    # Mirror1 2 outline → Mirror1 2 (cut)
    with BuildSketch(Plane(origin=(0, 0, 0), x_dir=(1, 0, 0), z_dir=(0, 1, 0)).offset(MIRROR1_START_2)):
        with Locations((10, -46)):
            Circle(MIRROR1_2_OUTLINE_R)
    extrude(amount=MIRROR1_2_DEPTH, mode=Mode.SUBTRACT)

    # Mirror1 3 outline → Mirror1 3 (cut)
    with BuildSketch(Plane(origin=(0, 0, 0), x_dir=(1, 0, 0), z_dir=(0, 1, 0)).offset(MIRROR1_START_3)):
        with Locations((10, -46)):
            Circle(MIRROR1_3_OUTLINE_R)
    extrude(amount=MIRROR1_3_DEPTH, mode=Mode.SUBTRACT)

    # Mirror1 4 outline → Mirror1 4 (cut)
    with BuildSketch(Plane.YZ.offset(MIRROR1_START_3)):
        with Locations((0, 75)):
            Circle(MIRROR1_4_OUTLINE_R)
        with Locations((0, 75)):
            Circle(MIRROR1_4_OUTLINE_R_2, mode=Mode.SUBTRACT)
    extrude(amount=MIRROR1_4_DEPTH, mode=Mode.SUBTRACT)

    # Sketch10 → Cut-Extrude6 (cut, two sides: drawn at the far end of the back side and taken through both)
    with BuildSketch(Plane.ZY.offset(17.5).offset(-CUT_EXTRUDE6_DEPTH_BACK)):
        with Locations((75, 3.75)):
            Rectangle(SKETCH10_W, SKETCH10_H)
    extrude(amount=CUT_EXTRUDE6_DEPTH + CUT_EXTRUDE6_DEPTH_BACK, mode=Mode.SUBTRACT)


solid = part.part
